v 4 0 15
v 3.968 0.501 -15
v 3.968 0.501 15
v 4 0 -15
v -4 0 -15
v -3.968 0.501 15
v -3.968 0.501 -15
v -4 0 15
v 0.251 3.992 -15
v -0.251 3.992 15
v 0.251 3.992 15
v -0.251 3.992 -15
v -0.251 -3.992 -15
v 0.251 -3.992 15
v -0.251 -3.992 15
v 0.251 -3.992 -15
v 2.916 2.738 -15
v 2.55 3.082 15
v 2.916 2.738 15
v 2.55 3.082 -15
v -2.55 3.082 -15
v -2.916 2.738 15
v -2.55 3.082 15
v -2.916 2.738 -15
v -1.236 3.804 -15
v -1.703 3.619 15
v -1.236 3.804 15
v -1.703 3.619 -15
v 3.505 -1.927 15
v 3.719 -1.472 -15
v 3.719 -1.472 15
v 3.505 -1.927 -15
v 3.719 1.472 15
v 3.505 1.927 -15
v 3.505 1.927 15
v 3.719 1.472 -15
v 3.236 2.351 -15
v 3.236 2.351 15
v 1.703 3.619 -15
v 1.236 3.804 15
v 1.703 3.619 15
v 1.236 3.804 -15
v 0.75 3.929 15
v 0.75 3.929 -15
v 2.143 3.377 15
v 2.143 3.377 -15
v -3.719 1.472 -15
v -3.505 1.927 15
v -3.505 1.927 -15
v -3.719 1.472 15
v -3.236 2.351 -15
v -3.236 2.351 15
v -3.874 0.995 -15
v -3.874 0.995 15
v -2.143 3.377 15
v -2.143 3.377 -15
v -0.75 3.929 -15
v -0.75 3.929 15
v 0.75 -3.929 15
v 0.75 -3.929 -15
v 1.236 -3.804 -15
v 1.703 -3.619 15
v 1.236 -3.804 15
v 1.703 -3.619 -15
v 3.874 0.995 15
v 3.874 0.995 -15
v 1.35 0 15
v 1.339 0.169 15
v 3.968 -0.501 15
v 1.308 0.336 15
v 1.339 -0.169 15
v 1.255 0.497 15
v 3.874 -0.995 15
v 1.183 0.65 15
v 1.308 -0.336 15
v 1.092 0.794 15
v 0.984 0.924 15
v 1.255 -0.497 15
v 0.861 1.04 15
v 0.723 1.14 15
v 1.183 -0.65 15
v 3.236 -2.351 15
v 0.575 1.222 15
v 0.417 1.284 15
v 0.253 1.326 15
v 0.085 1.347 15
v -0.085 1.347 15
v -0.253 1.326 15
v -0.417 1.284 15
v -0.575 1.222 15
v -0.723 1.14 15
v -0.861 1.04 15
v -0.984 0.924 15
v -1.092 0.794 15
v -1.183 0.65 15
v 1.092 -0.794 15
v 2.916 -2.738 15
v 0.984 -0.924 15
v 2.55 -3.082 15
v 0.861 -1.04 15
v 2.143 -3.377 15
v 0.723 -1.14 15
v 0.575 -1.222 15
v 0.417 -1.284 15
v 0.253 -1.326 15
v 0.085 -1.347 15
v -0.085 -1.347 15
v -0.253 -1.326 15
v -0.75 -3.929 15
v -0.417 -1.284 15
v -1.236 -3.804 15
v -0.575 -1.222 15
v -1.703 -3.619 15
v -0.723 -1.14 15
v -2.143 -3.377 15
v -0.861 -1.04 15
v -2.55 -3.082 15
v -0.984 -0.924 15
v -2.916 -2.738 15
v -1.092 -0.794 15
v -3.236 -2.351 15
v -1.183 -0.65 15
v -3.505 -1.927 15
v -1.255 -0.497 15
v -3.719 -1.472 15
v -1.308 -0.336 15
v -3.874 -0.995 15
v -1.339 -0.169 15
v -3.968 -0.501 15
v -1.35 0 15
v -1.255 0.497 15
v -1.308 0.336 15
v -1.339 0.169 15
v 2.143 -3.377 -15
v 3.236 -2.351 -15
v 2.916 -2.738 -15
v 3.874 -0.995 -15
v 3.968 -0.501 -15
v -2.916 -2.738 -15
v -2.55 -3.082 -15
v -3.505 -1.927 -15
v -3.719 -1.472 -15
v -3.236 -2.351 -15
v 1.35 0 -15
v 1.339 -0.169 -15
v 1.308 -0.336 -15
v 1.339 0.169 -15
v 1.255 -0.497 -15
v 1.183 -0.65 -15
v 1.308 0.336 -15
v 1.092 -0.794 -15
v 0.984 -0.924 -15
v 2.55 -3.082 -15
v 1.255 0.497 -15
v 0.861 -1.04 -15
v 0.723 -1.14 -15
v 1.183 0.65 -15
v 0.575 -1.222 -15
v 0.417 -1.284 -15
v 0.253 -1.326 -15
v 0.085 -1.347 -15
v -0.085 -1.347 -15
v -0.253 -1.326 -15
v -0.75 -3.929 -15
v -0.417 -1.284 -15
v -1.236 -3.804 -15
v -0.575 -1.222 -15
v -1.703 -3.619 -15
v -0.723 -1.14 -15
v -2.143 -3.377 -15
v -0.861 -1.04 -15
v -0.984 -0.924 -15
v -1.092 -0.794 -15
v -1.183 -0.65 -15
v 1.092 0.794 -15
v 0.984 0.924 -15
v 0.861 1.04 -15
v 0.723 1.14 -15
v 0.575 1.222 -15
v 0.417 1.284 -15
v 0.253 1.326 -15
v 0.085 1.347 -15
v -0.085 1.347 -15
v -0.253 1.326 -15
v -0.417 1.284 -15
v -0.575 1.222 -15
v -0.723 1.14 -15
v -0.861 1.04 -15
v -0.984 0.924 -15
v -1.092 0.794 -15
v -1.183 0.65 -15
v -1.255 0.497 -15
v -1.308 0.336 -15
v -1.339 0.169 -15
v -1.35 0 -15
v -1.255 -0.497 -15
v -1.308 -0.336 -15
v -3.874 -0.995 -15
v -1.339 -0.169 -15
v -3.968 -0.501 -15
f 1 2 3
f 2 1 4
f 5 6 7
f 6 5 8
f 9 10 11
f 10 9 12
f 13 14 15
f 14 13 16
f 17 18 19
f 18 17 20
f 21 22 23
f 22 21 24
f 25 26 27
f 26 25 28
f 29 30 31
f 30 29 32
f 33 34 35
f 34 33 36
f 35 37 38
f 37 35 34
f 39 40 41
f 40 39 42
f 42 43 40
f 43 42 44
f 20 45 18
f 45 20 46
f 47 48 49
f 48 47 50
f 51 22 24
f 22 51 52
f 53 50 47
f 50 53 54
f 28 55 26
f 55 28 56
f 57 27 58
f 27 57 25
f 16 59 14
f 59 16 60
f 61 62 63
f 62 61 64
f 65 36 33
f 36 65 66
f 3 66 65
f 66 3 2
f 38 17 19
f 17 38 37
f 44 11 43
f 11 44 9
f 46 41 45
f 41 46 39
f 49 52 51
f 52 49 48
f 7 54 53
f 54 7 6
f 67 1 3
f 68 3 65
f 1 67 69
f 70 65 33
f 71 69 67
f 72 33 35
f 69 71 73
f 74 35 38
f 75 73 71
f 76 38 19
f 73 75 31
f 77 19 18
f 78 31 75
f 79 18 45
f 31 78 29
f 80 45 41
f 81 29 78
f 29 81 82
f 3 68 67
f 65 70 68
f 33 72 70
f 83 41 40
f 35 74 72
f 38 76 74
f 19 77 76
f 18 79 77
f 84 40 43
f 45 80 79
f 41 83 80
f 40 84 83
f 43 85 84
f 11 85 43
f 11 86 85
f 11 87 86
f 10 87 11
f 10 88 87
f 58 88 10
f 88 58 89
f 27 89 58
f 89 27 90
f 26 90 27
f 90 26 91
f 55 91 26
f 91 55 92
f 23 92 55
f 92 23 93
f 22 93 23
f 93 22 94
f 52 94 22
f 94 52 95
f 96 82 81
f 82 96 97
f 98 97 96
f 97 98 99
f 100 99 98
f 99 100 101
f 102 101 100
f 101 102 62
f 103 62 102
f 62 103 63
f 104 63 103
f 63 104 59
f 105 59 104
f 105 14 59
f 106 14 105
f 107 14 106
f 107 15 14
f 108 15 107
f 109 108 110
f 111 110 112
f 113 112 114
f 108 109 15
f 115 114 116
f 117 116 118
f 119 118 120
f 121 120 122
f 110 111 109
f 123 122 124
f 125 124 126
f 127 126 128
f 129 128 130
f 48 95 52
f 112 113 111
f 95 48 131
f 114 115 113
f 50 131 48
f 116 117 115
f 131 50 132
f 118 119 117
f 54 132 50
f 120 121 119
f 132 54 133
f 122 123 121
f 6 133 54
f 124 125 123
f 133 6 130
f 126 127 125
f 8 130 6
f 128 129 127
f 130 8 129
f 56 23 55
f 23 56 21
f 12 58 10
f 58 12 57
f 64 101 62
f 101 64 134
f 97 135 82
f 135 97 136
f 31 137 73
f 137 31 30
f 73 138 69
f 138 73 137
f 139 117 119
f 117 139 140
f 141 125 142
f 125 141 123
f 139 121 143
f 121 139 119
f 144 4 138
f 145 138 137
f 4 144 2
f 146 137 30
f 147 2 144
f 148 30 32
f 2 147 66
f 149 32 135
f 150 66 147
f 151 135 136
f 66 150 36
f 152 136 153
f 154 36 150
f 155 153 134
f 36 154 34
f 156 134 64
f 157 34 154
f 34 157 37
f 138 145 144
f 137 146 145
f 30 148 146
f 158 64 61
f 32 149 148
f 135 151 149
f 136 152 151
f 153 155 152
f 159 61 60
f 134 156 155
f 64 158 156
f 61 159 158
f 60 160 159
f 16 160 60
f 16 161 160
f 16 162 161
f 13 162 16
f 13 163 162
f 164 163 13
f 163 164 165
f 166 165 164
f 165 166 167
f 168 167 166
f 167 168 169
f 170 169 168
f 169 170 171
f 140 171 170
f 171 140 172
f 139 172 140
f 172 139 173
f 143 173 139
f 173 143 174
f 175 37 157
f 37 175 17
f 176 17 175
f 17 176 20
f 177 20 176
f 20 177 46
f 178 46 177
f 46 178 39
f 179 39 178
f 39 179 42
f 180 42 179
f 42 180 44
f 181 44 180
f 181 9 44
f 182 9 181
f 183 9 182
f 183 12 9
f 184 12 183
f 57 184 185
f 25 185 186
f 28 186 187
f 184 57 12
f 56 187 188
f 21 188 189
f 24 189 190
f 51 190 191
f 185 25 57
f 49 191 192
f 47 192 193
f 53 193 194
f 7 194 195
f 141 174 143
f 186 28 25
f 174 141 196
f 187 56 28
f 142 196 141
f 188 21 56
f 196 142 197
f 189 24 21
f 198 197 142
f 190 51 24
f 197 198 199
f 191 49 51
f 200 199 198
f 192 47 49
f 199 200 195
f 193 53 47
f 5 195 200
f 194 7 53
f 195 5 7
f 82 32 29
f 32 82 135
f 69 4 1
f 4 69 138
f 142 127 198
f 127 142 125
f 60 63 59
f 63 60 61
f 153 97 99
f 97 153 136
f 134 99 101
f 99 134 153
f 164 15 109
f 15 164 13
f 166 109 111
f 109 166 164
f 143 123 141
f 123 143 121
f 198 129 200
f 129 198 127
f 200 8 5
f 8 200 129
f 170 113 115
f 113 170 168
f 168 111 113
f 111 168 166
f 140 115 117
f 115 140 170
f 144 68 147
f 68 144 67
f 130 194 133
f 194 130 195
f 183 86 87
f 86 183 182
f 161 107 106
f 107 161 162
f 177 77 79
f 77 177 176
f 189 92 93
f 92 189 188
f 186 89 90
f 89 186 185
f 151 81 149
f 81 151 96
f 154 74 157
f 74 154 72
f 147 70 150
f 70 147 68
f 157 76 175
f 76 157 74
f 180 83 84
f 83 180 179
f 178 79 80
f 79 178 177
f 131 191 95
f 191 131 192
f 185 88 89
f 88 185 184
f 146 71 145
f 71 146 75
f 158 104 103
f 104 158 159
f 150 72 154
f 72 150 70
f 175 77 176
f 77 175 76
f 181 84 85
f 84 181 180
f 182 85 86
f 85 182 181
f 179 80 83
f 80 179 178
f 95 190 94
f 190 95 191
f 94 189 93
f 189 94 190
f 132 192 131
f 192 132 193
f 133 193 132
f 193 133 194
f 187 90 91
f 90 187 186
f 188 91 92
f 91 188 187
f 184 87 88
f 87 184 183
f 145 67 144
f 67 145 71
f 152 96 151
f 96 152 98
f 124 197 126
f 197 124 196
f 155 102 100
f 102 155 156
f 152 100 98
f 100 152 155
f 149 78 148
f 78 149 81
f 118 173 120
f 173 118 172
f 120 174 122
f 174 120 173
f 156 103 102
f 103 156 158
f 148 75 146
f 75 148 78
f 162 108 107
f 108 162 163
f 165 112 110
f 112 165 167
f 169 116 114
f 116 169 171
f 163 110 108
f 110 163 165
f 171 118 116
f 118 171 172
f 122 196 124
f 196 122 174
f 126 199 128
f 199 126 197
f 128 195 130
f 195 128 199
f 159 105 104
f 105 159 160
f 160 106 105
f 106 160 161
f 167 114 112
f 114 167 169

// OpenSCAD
$fn = 50;


difference() {
	union() {
		translate(v = [0, 0, -15.0000000000]) {
			cylinder(h = 30, r = 4.0000000000);
		}
	}
	union() {
		translate(v = [0, 0, -100.0000000000]) {
			cylinder(h = 200, r = 1.3500000000);
		}
	}
}
